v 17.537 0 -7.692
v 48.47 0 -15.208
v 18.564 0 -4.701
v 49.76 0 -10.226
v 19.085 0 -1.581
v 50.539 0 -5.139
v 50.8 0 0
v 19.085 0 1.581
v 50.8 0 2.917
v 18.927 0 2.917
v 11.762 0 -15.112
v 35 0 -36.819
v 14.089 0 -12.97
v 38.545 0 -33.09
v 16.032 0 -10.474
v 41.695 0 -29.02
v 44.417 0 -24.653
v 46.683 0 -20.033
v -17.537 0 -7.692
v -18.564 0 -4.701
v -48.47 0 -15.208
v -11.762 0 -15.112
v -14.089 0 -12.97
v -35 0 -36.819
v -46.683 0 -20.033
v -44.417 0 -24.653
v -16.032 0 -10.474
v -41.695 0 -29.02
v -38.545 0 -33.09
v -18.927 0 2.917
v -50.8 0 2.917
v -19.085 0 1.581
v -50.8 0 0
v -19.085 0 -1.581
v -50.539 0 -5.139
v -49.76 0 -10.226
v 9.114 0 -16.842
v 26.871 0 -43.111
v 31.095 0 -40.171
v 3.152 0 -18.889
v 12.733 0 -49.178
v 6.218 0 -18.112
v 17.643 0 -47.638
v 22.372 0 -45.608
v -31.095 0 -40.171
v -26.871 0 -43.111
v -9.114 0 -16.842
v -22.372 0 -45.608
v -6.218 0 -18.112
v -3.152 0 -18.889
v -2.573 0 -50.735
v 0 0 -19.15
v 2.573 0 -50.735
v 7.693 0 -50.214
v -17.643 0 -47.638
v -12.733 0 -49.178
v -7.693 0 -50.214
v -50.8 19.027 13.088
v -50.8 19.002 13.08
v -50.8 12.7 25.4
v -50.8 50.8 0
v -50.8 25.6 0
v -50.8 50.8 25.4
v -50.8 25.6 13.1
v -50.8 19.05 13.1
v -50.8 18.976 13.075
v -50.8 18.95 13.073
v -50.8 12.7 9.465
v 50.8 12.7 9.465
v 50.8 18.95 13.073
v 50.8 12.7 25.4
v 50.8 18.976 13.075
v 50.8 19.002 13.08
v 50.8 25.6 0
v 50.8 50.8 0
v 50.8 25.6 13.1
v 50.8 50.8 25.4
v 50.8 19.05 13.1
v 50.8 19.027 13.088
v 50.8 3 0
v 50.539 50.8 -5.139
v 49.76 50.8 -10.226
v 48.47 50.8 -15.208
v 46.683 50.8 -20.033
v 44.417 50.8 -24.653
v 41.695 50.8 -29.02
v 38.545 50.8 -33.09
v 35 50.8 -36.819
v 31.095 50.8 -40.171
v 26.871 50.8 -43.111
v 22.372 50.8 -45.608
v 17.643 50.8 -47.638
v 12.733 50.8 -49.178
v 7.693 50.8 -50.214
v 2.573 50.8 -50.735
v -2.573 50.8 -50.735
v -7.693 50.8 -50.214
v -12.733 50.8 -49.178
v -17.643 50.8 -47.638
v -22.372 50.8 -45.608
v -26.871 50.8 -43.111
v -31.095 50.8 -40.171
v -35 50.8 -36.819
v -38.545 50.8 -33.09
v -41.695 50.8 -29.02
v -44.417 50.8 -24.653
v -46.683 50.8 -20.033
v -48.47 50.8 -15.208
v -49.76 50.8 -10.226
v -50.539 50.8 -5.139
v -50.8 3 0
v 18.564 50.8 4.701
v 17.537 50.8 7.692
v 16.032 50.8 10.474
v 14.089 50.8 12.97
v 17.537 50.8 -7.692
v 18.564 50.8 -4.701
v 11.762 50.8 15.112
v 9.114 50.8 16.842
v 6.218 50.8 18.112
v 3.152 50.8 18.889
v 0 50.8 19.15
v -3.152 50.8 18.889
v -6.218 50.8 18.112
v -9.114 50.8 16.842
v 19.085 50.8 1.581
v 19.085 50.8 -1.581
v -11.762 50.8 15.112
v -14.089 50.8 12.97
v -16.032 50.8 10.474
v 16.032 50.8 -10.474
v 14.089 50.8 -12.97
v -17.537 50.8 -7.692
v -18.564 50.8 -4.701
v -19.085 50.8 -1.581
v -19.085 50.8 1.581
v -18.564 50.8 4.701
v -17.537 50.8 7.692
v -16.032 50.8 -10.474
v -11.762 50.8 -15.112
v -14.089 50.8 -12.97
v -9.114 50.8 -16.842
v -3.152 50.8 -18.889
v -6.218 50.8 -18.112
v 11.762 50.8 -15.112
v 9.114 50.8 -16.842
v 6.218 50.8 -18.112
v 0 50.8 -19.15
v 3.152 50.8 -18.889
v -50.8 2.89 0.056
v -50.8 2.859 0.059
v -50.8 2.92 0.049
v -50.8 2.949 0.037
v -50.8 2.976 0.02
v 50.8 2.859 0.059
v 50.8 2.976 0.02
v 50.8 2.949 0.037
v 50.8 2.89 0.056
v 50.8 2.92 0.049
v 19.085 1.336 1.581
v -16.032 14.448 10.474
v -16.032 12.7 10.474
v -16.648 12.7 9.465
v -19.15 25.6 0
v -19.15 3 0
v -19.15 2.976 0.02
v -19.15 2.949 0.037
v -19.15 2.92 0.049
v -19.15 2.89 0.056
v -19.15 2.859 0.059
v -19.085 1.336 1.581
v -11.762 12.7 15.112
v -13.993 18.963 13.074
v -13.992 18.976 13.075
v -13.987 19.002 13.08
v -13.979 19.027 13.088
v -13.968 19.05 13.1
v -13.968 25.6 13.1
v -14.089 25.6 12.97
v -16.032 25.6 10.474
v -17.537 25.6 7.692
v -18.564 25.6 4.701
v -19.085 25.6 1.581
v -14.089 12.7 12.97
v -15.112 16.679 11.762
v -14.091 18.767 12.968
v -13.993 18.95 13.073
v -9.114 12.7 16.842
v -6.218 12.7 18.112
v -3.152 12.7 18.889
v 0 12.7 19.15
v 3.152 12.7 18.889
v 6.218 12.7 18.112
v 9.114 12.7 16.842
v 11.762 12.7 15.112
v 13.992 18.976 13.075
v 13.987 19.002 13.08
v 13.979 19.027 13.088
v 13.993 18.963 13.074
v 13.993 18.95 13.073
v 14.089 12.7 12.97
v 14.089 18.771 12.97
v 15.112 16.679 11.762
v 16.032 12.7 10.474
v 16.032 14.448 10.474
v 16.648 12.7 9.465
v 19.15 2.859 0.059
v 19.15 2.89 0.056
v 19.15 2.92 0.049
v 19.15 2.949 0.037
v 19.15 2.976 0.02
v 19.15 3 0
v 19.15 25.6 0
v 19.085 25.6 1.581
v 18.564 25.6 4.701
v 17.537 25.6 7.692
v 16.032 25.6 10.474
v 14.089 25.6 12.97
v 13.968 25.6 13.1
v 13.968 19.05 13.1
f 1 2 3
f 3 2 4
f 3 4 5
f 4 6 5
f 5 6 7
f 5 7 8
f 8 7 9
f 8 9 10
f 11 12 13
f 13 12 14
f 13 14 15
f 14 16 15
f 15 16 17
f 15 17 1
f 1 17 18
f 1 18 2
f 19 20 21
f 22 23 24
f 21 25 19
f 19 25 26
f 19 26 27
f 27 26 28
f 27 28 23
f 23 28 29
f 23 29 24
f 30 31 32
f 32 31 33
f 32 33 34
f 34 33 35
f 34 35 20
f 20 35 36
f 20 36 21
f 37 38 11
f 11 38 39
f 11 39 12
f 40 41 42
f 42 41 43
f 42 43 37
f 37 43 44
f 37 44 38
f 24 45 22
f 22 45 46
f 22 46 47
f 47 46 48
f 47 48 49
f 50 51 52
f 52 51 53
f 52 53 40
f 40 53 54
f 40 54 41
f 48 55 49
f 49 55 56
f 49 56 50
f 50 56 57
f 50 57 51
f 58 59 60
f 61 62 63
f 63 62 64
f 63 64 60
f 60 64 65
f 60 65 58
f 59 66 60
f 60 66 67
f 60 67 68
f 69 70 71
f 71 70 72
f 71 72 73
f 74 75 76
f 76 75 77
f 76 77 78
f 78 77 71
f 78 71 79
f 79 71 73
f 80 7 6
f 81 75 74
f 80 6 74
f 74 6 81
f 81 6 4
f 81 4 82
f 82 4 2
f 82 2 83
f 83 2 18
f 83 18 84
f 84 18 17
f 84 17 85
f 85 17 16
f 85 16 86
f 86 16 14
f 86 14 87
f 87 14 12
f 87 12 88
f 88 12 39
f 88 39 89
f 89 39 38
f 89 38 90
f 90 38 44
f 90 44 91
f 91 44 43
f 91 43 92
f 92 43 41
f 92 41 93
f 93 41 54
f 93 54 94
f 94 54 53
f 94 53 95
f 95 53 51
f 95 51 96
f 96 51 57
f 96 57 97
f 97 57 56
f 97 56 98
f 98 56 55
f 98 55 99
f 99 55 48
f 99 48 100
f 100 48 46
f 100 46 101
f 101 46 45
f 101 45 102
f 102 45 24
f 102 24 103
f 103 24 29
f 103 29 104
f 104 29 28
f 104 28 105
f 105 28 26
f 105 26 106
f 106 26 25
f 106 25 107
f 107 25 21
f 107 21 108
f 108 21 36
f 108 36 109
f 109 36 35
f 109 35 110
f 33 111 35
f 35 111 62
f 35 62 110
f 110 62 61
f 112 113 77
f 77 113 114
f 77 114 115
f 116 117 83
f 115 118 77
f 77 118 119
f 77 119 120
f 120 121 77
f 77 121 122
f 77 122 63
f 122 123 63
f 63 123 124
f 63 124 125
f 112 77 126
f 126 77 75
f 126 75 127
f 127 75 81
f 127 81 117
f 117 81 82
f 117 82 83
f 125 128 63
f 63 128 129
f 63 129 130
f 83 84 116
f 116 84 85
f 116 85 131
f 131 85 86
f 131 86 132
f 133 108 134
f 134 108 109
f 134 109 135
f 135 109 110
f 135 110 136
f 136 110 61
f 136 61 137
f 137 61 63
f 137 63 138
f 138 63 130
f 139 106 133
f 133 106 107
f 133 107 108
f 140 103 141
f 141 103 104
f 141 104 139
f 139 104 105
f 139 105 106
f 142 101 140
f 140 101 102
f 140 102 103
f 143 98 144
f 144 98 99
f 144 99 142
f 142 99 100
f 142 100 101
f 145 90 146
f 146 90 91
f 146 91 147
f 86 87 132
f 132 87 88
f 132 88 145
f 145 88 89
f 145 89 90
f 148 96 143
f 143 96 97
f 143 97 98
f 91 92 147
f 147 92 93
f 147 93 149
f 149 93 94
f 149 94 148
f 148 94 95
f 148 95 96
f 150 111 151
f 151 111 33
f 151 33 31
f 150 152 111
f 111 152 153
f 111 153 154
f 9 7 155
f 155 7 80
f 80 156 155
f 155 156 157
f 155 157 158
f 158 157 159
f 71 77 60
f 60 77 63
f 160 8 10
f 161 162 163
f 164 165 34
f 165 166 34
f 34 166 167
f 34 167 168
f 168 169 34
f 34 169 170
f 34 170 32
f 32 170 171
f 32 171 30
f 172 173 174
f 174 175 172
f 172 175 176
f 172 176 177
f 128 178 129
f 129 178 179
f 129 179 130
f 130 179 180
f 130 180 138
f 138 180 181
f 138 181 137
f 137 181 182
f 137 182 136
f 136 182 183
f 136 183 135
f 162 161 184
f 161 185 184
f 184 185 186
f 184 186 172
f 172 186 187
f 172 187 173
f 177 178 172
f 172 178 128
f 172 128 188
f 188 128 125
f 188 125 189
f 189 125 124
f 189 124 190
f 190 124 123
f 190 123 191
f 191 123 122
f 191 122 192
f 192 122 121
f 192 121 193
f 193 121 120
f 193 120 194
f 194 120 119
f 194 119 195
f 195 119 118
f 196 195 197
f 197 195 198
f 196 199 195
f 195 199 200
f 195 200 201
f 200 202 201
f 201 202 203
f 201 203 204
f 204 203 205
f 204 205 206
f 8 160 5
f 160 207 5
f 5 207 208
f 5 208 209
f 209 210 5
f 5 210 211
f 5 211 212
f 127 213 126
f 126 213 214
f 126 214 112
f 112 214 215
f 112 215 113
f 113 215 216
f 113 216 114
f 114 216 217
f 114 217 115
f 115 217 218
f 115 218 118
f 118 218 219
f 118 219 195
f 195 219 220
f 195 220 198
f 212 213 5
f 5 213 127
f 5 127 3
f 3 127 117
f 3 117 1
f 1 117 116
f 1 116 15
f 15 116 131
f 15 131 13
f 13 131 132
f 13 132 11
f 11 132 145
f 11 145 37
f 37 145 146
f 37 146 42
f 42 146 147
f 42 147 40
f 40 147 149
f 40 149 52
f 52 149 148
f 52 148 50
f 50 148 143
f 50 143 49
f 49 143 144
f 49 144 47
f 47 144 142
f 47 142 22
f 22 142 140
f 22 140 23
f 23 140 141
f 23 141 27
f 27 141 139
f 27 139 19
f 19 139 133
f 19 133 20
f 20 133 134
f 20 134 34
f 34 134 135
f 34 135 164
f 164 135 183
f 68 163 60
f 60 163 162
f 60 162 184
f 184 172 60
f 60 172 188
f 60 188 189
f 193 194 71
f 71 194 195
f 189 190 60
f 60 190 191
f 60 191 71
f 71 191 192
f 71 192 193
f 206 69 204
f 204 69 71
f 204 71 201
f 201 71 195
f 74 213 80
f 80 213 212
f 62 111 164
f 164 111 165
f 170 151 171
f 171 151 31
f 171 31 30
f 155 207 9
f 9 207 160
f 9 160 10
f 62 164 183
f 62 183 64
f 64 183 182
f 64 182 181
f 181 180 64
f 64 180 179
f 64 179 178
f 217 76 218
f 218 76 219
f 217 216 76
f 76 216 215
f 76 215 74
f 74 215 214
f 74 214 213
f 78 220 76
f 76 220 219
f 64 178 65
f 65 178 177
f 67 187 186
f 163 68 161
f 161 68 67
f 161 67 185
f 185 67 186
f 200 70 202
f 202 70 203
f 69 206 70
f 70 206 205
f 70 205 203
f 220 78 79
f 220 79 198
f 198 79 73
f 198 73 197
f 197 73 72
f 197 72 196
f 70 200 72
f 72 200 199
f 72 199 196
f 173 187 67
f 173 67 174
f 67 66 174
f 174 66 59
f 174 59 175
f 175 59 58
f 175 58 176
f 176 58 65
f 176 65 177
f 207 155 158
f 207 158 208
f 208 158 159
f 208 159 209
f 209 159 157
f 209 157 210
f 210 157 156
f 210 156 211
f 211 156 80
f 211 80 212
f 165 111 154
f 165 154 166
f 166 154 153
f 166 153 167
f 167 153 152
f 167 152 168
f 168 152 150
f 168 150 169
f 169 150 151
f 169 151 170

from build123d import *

# Parameters (mm, degrees)
SKETCH1_R           = 50.8
BOSS_EXTRUDE1_DEPTH = 50.8
SKETCH2_W           = 101.6
SKETCH2_H           = 101.6
CUT_EXTRUDE1_DEPTH  = 50.8
SKETCH3_W           = 101.6
SKETCH3_H           = 50.8
BOSS_EXTRUDE2_DEPTH = 25.4
SKETCH4_R           = 19.150000054
CUT_EXTRUDE2_DEPTH  = 50.8
CAVITY1_START       = -50.8
CAVITY1_DEPTH       = 101.6
SKETCH7_W           = 101.6
SKETCH7_H           = 22.400006
CUT_EXTRUDE3_DEPTH  = 0.2
SKETCH8_W           = 101.6
SKETCH8_H           = 4.242632202
CUT_EXTRUDE4_DEPTH  = 0.2
SKETCH9_W           = 101.6
SKETCH9_H           = 12.9
CUT_EXTRUDE5_DEPTH  = 0.2
SKETCH12_W          = 101.6
SKETCH12_H          = 6.55
CUT_EXTRUDE8_DEPTH  = 0.2
SKETCH13_W          = 101.6
SKETCH13_H          = 7.332348419
CUT_EXTRUDE9_DEPTH  = 0.2
FILLET3_R           = 0.2
FILLET4_R           = 0.2


with BuildPart() as part:
    # Sketch1 → Boss-Extrude1 (new body)
    with BuildSketch(Plane(origin=(0, 0, 0), x_dir=(1, 0, 0), z_dir=(0, 1, 0))):
        with Locations(Location((0, 0, 0), (0, 0, 270))):
            Circle(SKETCH1_R)
    extrude(amount=BOSS_EXTRUDE1_DEPTH)

    # Sketch2 → Cut-Extrude1 (cut)
    with BuildSketch(Plane(origin=(0, 50.8, 0), x_dir=(1, 0, 0), z_dir=(0, 1, 0))):
        with Locations((0, -50.8)):
            Rectangle(SKETCH2_W, SKETCH2_H)
    extrude(amount=-CUT_EXTRUDE1_DEPTH, mode=Mode.SUBTRACT)

    # Sketch3 → Boss-Extrude2 (add)
    with BuildSketch(Plane.XY):
        with Locations((0, 25.4)):
            Rectangle(SKETCH3_W, SKETCH3_H)
    extrude(amount=BOSS_EXTRUDE2_DEPTH)

    # Sketch4 → Cut-Extrude2 (cut)
    with BuildSketch(Plane(origin=(0, 50.8, 0), x_dir=(1, 0, 0), z_dir=(0, 1, 0))):
        with Locations(Location((0, 0, 0), (0, 0, 270))):
            Circle(SKETCH4_R)
    extrude(amount=-CUT_EXTRUDE2_DEPTH, mode=Mode.SUBTRACT)

    # Cavity1: read off the stored shape, not the designer's step
    # Cavity1 outline → Cavity1 (cut)
    with BuildSketch(Plane.YZ.offset(CAVITY1_START)):
        Polygon((19.05, 12.9), (12.7, 9.233825791), (12.7, 25.4), (0, 25.4), (0, 3.199994), (2.999994, 0.2), (25.4, 0.2), (25.4, 12.9), align=None)
    extrude(amount=CAVITY1_DEPTH, mode=Mode.SUBTRACT)

    # Sketch7 → Cut-Extrude3 (cut)
    with BuildSketch(Plane.XY.offset(0.2)):
        with Locations((0, 14.199997)):
            Rectangle(SKETCH7_W, SKETCH7_H)
    extrude(amount=-CUT_EXTRUDE3_DEPTH, mode=Mode.SUBTRACT)

    # Sketch8 → Cut-Extrude4 (cut)
    with BuildSketch(Plane(origin=(0, 1.599997, 1.599997), x_dir=(1, 0, 0), z_dir=(0, 0.7071067811865475, 0.7071067811865477))):
        with Locations((0, -0.141421356)):
            Rectangle(SKETCH8_W, SKETCH8_H)
    extrude(amount=-CUT_EXTRUDE4_DEPTH, mode=Mode.SUBTRACT)

    # Sketch9 → Cut-Extrude5 (cut)
    with BuildSketch(Plane.XZ.offset(-25.4)):
        with Locations((0, 6.45)):
            Rectangle(SKETCH9_W, SKETCH9_H)
    extrude(amount=-CUT_EXTRUDE5_DEPTH, mode=Mode.SUBTRACT)

    # Sketch12 → Cut-Extrude8 (cut)
    with BuildSketch(Plane(origin=(0, 0, 12.9), x_dir=(-1, 0, 0), z_dir=(0, 0, -1))):
        with Locations((0, 22.325)):
            Rectangle(SKETCH12_W, SKETCH12_H)
    extrude(amount=-CUT_EXTRUDE8_DEPTH, mode=Mode.SUBTRACT)

    # Sketch13 → Cut-Extrude9 (cut)
    with BuildSketch(Plane(origin=(0, -0.823363854, 1.426108029), x_dir=(-1, 0, 0), z_dir=(0, 0.4999999999999968, -0.8660254037844406))):
        with Locations((0, 19.281609733)):
            Rectangle(SKETCH13_W, SKETCH13_H)
    extrude(amount=-CUT_EXTRUDE9_DEPTH, mode=Mode.SUBTRACT)

    # Fillet3
    # the kernel refuses this fillet: 0.2 mm, written as the material it takes off along each edge
    with BuildSketch(Plane(origin=(-51.3, 19.05, 12.9), x_dir=(0, -1.0658141036380147e-12, 1.0), z_dir=(1, 0, 0))) as fillet3_piece_1:
        with BuildLine():
            CenterArc((0.373205081, 0.1), FILLET3_R, 180, 30)
            Line((0.173205081, 0.1), (0, 0))
            Line((0, 0), (0.2, 0))
        make_face()
    extrude(amount=37.646820072, mode=Mode.SUBTRACT)
    with BuildSketch(Plane(origin=(13.653179928, 19.05, 12.9), x_dir=(0, -0.4999999999991145, 0.86602540378495), z_dir=(1, 0, 0))) as fillet3_piece_2:
        with BuildLine():
            CenterArc((0.373205081, -0.1), FILLET3_R, 150, 30)
            Line((0.173205081, -0.1), (0, 0))
            Line((0, 0), (0.2, 0))
        make_face()
    extrude(amount=37.646820072, mode=Mode.SUBTRACT)

    # Fillet4
    # the kernel refuses this fillet: 0.2 mm, written as the material it takes off along each edge
    with BuildSketch(Plane(origin=(-51.3, 2.999994, 0.2), x_dir=(0, -1.4543921622385273e-11, -1.0), z_dir=(1, 0, 0))) as fillet4_piece_1:
        with BuildLine():
            CenterArc((0.341421356, -0.141421356), FILLET4_R, 135.000000001, 44.999999999)
            Line((0.141421356, -0.141421356), (0, 0))
            Line((0, 0), (0.2, 0))
        make_face()
    extrude(amount=32.651044361, mode=Mode.SUBTRACT)
    with BuildSketch(Plane(origin=(18.648955639, 2.999994, 0.2), x_dir=(0, -0.7071067811764699, -0.7071067811966253), z_dir=(1, 0, 0))) as fillet4_piece_2:
        with BuildLine():
            CenterArc((0.341421356, 0.141421356), FILLET4_R, 180, 44.999999999)
            Line((0.141421356, 0.141421356), (0, 0))
            Line((0, 0), (0.2, 0))
        make_face()
    extrude(amount=32.651044361, mode=Mode.SUBTRACT)


solid = part.part
